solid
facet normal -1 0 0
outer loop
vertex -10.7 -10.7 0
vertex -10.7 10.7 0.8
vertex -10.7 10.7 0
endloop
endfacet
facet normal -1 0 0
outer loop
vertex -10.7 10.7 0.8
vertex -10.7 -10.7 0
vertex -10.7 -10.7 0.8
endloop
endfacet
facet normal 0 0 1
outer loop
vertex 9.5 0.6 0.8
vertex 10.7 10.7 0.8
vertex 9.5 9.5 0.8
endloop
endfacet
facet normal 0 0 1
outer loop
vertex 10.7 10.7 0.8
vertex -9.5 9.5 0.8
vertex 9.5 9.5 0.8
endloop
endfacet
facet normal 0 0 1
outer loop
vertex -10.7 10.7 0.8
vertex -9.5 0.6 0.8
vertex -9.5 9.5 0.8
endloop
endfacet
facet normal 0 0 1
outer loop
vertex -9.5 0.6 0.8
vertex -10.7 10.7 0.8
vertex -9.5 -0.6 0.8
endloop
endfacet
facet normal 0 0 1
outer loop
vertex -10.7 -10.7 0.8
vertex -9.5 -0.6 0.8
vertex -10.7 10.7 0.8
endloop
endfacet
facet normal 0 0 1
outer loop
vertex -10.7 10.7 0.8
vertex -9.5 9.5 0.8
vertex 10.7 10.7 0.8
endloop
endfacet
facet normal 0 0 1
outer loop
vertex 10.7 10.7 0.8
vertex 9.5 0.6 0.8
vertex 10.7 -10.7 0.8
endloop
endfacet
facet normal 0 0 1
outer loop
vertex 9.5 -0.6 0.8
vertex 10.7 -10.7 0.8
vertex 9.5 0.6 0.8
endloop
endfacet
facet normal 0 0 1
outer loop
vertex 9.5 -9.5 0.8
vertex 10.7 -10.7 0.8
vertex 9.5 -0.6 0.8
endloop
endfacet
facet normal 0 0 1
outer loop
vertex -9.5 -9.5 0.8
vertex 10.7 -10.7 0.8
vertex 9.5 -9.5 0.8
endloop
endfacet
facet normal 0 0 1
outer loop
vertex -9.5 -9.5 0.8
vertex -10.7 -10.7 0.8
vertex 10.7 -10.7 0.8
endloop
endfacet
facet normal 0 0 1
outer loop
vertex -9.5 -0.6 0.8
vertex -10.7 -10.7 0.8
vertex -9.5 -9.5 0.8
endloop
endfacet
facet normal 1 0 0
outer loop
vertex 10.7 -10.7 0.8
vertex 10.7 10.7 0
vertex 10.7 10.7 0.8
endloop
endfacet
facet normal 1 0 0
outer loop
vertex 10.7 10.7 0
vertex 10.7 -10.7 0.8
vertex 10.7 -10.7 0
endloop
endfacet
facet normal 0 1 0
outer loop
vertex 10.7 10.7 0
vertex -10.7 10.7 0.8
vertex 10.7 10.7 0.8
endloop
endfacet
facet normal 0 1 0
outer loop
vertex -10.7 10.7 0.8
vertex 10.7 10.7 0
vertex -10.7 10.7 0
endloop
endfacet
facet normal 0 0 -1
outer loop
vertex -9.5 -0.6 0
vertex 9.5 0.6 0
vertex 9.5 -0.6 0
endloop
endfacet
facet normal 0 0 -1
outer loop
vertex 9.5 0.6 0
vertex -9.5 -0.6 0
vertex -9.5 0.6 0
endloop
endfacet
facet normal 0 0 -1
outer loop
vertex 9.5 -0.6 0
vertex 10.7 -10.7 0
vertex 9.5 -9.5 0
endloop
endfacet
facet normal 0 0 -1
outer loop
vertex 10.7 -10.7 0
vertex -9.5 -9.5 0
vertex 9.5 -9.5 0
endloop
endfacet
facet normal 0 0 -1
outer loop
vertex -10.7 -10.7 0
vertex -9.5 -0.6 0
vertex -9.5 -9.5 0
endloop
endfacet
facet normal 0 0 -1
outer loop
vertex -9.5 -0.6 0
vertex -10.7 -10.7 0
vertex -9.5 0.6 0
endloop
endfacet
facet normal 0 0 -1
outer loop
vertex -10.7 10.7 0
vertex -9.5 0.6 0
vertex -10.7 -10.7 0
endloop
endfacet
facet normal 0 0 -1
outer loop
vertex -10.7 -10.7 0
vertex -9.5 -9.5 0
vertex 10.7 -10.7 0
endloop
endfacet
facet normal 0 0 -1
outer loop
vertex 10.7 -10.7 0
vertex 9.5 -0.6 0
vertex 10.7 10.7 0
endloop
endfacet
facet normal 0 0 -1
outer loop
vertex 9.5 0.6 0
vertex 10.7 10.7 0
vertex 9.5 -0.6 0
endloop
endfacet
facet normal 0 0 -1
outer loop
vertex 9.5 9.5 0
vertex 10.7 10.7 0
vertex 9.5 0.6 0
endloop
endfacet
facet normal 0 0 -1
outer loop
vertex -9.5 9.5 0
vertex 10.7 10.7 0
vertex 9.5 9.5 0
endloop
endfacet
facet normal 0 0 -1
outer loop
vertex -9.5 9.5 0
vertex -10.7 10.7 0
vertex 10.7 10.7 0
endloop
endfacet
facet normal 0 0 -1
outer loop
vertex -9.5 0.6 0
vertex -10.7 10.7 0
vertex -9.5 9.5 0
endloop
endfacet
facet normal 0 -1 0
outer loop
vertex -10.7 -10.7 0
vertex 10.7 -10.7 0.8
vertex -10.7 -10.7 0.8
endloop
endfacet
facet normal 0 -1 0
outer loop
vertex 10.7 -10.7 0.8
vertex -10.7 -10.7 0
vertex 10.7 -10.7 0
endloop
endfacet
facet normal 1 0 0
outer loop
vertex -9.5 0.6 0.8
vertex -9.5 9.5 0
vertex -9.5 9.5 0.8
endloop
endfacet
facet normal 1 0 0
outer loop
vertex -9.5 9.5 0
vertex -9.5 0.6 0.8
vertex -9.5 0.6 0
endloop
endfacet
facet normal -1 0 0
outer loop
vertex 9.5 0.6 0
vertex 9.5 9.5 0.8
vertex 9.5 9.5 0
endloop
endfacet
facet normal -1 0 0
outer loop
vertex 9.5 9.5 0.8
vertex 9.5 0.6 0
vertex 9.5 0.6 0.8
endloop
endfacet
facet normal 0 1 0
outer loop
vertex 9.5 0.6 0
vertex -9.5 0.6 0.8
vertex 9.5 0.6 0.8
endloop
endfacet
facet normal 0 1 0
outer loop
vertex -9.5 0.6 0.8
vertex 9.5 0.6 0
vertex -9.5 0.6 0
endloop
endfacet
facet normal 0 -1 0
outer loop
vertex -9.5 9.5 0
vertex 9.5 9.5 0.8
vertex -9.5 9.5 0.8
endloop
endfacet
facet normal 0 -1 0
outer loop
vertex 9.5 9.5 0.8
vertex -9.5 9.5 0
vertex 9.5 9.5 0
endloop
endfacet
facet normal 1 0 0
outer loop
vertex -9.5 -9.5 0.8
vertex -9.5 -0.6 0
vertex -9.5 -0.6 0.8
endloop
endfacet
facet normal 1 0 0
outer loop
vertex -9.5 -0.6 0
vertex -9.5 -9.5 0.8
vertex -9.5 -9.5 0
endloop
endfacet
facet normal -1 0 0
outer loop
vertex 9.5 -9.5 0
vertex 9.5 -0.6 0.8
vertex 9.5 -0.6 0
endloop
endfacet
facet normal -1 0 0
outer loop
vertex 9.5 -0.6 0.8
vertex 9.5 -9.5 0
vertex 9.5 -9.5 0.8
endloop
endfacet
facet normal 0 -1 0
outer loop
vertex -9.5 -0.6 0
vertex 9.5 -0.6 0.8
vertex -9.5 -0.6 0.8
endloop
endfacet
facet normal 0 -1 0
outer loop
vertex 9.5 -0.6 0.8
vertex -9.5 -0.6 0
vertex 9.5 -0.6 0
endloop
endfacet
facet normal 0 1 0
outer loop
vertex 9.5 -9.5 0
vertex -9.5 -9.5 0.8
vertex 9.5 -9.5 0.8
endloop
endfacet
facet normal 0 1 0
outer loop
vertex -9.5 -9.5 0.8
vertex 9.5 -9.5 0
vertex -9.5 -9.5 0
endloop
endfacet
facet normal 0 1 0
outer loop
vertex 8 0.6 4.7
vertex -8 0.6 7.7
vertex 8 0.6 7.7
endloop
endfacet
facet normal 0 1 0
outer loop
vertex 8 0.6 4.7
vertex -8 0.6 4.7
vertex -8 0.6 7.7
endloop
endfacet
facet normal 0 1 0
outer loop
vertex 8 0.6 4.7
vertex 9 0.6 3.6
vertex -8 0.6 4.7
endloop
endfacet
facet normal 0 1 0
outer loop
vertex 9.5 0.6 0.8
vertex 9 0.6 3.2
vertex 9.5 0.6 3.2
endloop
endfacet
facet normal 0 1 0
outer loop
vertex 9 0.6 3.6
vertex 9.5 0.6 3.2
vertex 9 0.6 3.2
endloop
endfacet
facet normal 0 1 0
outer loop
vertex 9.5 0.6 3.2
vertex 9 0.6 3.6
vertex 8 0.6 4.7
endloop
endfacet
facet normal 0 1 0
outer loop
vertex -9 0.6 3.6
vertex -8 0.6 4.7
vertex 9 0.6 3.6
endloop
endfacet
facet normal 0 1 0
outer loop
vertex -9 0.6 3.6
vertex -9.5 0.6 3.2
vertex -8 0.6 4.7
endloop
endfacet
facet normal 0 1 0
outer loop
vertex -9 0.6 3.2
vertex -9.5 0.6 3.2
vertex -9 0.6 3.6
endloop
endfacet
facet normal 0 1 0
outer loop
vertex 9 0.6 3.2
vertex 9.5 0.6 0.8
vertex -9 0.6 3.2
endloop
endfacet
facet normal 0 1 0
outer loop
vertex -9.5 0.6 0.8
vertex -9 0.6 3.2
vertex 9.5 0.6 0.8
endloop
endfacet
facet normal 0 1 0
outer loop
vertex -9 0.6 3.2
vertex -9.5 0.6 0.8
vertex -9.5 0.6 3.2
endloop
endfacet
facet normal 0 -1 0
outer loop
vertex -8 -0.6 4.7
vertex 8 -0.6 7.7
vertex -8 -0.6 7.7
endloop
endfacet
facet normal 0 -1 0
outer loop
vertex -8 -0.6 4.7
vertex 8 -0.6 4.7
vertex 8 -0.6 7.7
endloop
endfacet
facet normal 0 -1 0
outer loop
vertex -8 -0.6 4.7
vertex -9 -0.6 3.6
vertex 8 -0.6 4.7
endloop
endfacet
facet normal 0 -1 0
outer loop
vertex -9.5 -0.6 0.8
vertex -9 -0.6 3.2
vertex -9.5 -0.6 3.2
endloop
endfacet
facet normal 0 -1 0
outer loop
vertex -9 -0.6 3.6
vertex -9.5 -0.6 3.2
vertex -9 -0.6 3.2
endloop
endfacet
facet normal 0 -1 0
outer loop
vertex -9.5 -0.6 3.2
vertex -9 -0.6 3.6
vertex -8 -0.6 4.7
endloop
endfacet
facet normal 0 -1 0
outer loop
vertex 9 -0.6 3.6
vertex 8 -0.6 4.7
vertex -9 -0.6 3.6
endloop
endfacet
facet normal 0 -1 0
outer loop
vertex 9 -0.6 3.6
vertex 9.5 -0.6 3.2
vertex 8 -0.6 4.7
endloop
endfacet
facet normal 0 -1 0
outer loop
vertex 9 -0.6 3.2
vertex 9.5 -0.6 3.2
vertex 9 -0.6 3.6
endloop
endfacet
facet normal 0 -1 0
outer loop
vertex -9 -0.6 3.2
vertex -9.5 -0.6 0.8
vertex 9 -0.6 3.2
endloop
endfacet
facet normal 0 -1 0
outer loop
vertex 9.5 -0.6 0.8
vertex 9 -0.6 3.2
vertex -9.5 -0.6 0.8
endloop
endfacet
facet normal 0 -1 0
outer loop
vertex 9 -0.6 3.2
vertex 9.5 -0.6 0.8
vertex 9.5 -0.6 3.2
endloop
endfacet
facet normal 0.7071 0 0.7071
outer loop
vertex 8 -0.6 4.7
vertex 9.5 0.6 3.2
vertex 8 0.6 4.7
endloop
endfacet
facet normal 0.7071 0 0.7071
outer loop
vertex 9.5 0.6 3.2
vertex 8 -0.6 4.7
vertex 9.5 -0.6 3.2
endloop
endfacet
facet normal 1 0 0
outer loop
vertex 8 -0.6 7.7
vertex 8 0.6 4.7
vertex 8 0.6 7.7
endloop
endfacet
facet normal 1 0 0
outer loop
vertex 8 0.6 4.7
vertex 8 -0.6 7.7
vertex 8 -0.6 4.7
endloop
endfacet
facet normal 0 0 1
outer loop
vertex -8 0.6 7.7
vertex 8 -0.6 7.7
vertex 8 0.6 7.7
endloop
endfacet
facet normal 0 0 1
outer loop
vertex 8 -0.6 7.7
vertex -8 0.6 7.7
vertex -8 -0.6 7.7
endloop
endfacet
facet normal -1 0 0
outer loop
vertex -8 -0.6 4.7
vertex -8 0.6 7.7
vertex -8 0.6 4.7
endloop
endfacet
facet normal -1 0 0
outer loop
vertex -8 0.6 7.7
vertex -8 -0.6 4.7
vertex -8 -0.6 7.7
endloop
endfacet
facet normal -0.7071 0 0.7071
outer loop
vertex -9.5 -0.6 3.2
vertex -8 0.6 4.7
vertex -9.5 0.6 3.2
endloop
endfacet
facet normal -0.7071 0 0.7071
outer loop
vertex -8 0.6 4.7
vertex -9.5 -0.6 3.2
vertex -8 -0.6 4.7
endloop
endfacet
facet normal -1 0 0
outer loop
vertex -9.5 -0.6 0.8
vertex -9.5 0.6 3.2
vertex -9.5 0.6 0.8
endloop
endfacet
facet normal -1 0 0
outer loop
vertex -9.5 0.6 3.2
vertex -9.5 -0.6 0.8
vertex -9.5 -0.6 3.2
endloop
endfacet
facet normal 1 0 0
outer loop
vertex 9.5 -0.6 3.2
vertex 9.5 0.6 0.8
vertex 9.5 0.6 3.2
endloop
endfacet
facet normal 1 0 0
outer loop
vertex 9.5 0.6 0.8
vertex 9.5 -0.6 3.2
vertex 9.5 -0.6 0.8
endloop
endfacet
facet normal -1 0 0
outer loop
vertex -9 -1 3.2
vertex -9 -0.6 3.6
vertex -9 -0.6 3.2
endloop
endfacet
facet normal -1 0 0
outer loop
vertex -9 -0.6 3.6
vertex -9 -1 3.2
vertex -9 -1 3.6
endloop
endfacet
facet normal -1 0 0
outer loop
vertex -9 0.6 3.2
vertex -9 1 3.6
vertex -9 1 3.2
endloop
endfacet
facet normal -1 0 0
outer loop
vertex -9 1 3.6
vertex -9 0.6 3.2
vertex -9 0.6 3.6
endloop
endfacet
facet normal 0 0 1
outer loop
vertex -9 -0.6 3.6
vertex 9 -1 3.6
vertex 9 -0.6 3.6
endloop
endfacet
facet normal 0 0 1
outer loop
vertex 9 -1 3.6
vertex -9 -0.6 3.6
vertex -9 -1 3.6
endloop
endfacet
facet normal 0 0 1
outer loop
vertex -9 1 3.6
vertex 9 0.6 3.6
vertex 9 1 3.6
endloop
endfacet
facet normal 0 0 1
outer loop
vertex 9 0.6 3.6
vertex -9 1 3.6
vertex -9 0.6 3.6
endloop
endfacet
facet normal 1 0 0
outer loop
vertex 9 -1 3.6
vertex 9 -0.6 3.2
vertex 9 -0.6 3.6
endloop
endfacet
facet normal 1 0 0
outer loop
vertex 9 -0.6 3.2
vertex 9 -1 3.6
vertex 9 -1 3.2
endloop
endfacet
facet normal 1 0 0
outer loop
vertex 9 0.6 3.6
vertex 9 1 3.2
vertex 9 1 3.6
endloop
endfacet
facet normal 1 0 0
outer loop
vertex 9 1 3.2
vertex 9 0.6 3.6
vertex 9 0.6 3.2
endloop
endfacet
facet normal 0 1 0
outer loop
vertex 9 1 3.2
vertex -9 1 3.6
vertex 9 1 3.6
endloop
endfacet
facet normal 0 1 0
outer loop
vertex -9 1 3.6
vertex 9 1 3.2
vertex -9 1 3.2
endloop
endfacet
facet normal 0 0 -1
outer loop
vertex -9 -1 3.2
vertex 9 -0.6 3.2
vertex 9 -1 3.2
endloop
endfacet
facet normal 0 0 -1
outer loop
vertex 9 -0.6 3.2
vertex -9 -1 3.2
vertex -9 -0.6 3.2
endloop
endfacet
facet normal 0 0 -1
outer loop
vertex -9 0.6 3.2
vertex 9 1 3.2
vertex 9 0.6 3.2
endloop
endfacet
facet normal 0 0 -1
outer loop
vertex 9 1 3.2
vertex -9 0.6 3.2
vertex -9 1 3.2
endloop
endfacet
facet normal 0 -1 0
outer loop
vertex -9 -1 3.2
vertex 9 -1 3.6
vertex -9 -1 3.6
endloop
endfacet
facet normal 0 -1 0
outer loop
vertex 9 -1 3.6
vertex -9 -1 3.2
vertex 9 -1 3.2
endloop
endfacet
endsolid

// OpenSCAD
// Master caution light baffle for 33mm arcade switch

module baffle(){

difference(){
  union(){
  // Front face
  translate([-21.4/2,-21.4/2,0])
  cube([21.4,21.4,0.8]);
  }
  // Top aperture
  translate([(-21.4/2)+1.2,0.6,0])
  cube([21.4-2.4,(21.4/2)-1.2-0.6,6]);
  // Bottom aperture
  translate([(-21.4/2)+1.2,(-21.4/2)+1.2,0])
  cube([21.4-2.4,(21.4/2)-1.2-0.6,6]); 
}


// Baffle (2D shape on XY plane)
translate([0,0.6,0.8])
rotate([90,0,0])
linear_extrude(1.2){
polygon(points=[
[19/2,0],
[19/2,2.4],
[16/2,2.4+1.5],
[16/2,2.4+1.5+3],
//[10.8/2,2.4+1.5+10],
//[10.8/2,2.4+1.5+10+2.2],

//[-10.8/2,2.4+1.5+10+2.2],
//[-10.8/2,2.4+1.5+10],
[-16/2,2.4+1.5+3],
[-16/2,2.4+1.5],
[-19/2,2.4],
[-19/2,0],

]);
}

// Rib for inset
translate([-18/2,-1,3.2])
cube([18,2,0.4]);

}

baffle();
